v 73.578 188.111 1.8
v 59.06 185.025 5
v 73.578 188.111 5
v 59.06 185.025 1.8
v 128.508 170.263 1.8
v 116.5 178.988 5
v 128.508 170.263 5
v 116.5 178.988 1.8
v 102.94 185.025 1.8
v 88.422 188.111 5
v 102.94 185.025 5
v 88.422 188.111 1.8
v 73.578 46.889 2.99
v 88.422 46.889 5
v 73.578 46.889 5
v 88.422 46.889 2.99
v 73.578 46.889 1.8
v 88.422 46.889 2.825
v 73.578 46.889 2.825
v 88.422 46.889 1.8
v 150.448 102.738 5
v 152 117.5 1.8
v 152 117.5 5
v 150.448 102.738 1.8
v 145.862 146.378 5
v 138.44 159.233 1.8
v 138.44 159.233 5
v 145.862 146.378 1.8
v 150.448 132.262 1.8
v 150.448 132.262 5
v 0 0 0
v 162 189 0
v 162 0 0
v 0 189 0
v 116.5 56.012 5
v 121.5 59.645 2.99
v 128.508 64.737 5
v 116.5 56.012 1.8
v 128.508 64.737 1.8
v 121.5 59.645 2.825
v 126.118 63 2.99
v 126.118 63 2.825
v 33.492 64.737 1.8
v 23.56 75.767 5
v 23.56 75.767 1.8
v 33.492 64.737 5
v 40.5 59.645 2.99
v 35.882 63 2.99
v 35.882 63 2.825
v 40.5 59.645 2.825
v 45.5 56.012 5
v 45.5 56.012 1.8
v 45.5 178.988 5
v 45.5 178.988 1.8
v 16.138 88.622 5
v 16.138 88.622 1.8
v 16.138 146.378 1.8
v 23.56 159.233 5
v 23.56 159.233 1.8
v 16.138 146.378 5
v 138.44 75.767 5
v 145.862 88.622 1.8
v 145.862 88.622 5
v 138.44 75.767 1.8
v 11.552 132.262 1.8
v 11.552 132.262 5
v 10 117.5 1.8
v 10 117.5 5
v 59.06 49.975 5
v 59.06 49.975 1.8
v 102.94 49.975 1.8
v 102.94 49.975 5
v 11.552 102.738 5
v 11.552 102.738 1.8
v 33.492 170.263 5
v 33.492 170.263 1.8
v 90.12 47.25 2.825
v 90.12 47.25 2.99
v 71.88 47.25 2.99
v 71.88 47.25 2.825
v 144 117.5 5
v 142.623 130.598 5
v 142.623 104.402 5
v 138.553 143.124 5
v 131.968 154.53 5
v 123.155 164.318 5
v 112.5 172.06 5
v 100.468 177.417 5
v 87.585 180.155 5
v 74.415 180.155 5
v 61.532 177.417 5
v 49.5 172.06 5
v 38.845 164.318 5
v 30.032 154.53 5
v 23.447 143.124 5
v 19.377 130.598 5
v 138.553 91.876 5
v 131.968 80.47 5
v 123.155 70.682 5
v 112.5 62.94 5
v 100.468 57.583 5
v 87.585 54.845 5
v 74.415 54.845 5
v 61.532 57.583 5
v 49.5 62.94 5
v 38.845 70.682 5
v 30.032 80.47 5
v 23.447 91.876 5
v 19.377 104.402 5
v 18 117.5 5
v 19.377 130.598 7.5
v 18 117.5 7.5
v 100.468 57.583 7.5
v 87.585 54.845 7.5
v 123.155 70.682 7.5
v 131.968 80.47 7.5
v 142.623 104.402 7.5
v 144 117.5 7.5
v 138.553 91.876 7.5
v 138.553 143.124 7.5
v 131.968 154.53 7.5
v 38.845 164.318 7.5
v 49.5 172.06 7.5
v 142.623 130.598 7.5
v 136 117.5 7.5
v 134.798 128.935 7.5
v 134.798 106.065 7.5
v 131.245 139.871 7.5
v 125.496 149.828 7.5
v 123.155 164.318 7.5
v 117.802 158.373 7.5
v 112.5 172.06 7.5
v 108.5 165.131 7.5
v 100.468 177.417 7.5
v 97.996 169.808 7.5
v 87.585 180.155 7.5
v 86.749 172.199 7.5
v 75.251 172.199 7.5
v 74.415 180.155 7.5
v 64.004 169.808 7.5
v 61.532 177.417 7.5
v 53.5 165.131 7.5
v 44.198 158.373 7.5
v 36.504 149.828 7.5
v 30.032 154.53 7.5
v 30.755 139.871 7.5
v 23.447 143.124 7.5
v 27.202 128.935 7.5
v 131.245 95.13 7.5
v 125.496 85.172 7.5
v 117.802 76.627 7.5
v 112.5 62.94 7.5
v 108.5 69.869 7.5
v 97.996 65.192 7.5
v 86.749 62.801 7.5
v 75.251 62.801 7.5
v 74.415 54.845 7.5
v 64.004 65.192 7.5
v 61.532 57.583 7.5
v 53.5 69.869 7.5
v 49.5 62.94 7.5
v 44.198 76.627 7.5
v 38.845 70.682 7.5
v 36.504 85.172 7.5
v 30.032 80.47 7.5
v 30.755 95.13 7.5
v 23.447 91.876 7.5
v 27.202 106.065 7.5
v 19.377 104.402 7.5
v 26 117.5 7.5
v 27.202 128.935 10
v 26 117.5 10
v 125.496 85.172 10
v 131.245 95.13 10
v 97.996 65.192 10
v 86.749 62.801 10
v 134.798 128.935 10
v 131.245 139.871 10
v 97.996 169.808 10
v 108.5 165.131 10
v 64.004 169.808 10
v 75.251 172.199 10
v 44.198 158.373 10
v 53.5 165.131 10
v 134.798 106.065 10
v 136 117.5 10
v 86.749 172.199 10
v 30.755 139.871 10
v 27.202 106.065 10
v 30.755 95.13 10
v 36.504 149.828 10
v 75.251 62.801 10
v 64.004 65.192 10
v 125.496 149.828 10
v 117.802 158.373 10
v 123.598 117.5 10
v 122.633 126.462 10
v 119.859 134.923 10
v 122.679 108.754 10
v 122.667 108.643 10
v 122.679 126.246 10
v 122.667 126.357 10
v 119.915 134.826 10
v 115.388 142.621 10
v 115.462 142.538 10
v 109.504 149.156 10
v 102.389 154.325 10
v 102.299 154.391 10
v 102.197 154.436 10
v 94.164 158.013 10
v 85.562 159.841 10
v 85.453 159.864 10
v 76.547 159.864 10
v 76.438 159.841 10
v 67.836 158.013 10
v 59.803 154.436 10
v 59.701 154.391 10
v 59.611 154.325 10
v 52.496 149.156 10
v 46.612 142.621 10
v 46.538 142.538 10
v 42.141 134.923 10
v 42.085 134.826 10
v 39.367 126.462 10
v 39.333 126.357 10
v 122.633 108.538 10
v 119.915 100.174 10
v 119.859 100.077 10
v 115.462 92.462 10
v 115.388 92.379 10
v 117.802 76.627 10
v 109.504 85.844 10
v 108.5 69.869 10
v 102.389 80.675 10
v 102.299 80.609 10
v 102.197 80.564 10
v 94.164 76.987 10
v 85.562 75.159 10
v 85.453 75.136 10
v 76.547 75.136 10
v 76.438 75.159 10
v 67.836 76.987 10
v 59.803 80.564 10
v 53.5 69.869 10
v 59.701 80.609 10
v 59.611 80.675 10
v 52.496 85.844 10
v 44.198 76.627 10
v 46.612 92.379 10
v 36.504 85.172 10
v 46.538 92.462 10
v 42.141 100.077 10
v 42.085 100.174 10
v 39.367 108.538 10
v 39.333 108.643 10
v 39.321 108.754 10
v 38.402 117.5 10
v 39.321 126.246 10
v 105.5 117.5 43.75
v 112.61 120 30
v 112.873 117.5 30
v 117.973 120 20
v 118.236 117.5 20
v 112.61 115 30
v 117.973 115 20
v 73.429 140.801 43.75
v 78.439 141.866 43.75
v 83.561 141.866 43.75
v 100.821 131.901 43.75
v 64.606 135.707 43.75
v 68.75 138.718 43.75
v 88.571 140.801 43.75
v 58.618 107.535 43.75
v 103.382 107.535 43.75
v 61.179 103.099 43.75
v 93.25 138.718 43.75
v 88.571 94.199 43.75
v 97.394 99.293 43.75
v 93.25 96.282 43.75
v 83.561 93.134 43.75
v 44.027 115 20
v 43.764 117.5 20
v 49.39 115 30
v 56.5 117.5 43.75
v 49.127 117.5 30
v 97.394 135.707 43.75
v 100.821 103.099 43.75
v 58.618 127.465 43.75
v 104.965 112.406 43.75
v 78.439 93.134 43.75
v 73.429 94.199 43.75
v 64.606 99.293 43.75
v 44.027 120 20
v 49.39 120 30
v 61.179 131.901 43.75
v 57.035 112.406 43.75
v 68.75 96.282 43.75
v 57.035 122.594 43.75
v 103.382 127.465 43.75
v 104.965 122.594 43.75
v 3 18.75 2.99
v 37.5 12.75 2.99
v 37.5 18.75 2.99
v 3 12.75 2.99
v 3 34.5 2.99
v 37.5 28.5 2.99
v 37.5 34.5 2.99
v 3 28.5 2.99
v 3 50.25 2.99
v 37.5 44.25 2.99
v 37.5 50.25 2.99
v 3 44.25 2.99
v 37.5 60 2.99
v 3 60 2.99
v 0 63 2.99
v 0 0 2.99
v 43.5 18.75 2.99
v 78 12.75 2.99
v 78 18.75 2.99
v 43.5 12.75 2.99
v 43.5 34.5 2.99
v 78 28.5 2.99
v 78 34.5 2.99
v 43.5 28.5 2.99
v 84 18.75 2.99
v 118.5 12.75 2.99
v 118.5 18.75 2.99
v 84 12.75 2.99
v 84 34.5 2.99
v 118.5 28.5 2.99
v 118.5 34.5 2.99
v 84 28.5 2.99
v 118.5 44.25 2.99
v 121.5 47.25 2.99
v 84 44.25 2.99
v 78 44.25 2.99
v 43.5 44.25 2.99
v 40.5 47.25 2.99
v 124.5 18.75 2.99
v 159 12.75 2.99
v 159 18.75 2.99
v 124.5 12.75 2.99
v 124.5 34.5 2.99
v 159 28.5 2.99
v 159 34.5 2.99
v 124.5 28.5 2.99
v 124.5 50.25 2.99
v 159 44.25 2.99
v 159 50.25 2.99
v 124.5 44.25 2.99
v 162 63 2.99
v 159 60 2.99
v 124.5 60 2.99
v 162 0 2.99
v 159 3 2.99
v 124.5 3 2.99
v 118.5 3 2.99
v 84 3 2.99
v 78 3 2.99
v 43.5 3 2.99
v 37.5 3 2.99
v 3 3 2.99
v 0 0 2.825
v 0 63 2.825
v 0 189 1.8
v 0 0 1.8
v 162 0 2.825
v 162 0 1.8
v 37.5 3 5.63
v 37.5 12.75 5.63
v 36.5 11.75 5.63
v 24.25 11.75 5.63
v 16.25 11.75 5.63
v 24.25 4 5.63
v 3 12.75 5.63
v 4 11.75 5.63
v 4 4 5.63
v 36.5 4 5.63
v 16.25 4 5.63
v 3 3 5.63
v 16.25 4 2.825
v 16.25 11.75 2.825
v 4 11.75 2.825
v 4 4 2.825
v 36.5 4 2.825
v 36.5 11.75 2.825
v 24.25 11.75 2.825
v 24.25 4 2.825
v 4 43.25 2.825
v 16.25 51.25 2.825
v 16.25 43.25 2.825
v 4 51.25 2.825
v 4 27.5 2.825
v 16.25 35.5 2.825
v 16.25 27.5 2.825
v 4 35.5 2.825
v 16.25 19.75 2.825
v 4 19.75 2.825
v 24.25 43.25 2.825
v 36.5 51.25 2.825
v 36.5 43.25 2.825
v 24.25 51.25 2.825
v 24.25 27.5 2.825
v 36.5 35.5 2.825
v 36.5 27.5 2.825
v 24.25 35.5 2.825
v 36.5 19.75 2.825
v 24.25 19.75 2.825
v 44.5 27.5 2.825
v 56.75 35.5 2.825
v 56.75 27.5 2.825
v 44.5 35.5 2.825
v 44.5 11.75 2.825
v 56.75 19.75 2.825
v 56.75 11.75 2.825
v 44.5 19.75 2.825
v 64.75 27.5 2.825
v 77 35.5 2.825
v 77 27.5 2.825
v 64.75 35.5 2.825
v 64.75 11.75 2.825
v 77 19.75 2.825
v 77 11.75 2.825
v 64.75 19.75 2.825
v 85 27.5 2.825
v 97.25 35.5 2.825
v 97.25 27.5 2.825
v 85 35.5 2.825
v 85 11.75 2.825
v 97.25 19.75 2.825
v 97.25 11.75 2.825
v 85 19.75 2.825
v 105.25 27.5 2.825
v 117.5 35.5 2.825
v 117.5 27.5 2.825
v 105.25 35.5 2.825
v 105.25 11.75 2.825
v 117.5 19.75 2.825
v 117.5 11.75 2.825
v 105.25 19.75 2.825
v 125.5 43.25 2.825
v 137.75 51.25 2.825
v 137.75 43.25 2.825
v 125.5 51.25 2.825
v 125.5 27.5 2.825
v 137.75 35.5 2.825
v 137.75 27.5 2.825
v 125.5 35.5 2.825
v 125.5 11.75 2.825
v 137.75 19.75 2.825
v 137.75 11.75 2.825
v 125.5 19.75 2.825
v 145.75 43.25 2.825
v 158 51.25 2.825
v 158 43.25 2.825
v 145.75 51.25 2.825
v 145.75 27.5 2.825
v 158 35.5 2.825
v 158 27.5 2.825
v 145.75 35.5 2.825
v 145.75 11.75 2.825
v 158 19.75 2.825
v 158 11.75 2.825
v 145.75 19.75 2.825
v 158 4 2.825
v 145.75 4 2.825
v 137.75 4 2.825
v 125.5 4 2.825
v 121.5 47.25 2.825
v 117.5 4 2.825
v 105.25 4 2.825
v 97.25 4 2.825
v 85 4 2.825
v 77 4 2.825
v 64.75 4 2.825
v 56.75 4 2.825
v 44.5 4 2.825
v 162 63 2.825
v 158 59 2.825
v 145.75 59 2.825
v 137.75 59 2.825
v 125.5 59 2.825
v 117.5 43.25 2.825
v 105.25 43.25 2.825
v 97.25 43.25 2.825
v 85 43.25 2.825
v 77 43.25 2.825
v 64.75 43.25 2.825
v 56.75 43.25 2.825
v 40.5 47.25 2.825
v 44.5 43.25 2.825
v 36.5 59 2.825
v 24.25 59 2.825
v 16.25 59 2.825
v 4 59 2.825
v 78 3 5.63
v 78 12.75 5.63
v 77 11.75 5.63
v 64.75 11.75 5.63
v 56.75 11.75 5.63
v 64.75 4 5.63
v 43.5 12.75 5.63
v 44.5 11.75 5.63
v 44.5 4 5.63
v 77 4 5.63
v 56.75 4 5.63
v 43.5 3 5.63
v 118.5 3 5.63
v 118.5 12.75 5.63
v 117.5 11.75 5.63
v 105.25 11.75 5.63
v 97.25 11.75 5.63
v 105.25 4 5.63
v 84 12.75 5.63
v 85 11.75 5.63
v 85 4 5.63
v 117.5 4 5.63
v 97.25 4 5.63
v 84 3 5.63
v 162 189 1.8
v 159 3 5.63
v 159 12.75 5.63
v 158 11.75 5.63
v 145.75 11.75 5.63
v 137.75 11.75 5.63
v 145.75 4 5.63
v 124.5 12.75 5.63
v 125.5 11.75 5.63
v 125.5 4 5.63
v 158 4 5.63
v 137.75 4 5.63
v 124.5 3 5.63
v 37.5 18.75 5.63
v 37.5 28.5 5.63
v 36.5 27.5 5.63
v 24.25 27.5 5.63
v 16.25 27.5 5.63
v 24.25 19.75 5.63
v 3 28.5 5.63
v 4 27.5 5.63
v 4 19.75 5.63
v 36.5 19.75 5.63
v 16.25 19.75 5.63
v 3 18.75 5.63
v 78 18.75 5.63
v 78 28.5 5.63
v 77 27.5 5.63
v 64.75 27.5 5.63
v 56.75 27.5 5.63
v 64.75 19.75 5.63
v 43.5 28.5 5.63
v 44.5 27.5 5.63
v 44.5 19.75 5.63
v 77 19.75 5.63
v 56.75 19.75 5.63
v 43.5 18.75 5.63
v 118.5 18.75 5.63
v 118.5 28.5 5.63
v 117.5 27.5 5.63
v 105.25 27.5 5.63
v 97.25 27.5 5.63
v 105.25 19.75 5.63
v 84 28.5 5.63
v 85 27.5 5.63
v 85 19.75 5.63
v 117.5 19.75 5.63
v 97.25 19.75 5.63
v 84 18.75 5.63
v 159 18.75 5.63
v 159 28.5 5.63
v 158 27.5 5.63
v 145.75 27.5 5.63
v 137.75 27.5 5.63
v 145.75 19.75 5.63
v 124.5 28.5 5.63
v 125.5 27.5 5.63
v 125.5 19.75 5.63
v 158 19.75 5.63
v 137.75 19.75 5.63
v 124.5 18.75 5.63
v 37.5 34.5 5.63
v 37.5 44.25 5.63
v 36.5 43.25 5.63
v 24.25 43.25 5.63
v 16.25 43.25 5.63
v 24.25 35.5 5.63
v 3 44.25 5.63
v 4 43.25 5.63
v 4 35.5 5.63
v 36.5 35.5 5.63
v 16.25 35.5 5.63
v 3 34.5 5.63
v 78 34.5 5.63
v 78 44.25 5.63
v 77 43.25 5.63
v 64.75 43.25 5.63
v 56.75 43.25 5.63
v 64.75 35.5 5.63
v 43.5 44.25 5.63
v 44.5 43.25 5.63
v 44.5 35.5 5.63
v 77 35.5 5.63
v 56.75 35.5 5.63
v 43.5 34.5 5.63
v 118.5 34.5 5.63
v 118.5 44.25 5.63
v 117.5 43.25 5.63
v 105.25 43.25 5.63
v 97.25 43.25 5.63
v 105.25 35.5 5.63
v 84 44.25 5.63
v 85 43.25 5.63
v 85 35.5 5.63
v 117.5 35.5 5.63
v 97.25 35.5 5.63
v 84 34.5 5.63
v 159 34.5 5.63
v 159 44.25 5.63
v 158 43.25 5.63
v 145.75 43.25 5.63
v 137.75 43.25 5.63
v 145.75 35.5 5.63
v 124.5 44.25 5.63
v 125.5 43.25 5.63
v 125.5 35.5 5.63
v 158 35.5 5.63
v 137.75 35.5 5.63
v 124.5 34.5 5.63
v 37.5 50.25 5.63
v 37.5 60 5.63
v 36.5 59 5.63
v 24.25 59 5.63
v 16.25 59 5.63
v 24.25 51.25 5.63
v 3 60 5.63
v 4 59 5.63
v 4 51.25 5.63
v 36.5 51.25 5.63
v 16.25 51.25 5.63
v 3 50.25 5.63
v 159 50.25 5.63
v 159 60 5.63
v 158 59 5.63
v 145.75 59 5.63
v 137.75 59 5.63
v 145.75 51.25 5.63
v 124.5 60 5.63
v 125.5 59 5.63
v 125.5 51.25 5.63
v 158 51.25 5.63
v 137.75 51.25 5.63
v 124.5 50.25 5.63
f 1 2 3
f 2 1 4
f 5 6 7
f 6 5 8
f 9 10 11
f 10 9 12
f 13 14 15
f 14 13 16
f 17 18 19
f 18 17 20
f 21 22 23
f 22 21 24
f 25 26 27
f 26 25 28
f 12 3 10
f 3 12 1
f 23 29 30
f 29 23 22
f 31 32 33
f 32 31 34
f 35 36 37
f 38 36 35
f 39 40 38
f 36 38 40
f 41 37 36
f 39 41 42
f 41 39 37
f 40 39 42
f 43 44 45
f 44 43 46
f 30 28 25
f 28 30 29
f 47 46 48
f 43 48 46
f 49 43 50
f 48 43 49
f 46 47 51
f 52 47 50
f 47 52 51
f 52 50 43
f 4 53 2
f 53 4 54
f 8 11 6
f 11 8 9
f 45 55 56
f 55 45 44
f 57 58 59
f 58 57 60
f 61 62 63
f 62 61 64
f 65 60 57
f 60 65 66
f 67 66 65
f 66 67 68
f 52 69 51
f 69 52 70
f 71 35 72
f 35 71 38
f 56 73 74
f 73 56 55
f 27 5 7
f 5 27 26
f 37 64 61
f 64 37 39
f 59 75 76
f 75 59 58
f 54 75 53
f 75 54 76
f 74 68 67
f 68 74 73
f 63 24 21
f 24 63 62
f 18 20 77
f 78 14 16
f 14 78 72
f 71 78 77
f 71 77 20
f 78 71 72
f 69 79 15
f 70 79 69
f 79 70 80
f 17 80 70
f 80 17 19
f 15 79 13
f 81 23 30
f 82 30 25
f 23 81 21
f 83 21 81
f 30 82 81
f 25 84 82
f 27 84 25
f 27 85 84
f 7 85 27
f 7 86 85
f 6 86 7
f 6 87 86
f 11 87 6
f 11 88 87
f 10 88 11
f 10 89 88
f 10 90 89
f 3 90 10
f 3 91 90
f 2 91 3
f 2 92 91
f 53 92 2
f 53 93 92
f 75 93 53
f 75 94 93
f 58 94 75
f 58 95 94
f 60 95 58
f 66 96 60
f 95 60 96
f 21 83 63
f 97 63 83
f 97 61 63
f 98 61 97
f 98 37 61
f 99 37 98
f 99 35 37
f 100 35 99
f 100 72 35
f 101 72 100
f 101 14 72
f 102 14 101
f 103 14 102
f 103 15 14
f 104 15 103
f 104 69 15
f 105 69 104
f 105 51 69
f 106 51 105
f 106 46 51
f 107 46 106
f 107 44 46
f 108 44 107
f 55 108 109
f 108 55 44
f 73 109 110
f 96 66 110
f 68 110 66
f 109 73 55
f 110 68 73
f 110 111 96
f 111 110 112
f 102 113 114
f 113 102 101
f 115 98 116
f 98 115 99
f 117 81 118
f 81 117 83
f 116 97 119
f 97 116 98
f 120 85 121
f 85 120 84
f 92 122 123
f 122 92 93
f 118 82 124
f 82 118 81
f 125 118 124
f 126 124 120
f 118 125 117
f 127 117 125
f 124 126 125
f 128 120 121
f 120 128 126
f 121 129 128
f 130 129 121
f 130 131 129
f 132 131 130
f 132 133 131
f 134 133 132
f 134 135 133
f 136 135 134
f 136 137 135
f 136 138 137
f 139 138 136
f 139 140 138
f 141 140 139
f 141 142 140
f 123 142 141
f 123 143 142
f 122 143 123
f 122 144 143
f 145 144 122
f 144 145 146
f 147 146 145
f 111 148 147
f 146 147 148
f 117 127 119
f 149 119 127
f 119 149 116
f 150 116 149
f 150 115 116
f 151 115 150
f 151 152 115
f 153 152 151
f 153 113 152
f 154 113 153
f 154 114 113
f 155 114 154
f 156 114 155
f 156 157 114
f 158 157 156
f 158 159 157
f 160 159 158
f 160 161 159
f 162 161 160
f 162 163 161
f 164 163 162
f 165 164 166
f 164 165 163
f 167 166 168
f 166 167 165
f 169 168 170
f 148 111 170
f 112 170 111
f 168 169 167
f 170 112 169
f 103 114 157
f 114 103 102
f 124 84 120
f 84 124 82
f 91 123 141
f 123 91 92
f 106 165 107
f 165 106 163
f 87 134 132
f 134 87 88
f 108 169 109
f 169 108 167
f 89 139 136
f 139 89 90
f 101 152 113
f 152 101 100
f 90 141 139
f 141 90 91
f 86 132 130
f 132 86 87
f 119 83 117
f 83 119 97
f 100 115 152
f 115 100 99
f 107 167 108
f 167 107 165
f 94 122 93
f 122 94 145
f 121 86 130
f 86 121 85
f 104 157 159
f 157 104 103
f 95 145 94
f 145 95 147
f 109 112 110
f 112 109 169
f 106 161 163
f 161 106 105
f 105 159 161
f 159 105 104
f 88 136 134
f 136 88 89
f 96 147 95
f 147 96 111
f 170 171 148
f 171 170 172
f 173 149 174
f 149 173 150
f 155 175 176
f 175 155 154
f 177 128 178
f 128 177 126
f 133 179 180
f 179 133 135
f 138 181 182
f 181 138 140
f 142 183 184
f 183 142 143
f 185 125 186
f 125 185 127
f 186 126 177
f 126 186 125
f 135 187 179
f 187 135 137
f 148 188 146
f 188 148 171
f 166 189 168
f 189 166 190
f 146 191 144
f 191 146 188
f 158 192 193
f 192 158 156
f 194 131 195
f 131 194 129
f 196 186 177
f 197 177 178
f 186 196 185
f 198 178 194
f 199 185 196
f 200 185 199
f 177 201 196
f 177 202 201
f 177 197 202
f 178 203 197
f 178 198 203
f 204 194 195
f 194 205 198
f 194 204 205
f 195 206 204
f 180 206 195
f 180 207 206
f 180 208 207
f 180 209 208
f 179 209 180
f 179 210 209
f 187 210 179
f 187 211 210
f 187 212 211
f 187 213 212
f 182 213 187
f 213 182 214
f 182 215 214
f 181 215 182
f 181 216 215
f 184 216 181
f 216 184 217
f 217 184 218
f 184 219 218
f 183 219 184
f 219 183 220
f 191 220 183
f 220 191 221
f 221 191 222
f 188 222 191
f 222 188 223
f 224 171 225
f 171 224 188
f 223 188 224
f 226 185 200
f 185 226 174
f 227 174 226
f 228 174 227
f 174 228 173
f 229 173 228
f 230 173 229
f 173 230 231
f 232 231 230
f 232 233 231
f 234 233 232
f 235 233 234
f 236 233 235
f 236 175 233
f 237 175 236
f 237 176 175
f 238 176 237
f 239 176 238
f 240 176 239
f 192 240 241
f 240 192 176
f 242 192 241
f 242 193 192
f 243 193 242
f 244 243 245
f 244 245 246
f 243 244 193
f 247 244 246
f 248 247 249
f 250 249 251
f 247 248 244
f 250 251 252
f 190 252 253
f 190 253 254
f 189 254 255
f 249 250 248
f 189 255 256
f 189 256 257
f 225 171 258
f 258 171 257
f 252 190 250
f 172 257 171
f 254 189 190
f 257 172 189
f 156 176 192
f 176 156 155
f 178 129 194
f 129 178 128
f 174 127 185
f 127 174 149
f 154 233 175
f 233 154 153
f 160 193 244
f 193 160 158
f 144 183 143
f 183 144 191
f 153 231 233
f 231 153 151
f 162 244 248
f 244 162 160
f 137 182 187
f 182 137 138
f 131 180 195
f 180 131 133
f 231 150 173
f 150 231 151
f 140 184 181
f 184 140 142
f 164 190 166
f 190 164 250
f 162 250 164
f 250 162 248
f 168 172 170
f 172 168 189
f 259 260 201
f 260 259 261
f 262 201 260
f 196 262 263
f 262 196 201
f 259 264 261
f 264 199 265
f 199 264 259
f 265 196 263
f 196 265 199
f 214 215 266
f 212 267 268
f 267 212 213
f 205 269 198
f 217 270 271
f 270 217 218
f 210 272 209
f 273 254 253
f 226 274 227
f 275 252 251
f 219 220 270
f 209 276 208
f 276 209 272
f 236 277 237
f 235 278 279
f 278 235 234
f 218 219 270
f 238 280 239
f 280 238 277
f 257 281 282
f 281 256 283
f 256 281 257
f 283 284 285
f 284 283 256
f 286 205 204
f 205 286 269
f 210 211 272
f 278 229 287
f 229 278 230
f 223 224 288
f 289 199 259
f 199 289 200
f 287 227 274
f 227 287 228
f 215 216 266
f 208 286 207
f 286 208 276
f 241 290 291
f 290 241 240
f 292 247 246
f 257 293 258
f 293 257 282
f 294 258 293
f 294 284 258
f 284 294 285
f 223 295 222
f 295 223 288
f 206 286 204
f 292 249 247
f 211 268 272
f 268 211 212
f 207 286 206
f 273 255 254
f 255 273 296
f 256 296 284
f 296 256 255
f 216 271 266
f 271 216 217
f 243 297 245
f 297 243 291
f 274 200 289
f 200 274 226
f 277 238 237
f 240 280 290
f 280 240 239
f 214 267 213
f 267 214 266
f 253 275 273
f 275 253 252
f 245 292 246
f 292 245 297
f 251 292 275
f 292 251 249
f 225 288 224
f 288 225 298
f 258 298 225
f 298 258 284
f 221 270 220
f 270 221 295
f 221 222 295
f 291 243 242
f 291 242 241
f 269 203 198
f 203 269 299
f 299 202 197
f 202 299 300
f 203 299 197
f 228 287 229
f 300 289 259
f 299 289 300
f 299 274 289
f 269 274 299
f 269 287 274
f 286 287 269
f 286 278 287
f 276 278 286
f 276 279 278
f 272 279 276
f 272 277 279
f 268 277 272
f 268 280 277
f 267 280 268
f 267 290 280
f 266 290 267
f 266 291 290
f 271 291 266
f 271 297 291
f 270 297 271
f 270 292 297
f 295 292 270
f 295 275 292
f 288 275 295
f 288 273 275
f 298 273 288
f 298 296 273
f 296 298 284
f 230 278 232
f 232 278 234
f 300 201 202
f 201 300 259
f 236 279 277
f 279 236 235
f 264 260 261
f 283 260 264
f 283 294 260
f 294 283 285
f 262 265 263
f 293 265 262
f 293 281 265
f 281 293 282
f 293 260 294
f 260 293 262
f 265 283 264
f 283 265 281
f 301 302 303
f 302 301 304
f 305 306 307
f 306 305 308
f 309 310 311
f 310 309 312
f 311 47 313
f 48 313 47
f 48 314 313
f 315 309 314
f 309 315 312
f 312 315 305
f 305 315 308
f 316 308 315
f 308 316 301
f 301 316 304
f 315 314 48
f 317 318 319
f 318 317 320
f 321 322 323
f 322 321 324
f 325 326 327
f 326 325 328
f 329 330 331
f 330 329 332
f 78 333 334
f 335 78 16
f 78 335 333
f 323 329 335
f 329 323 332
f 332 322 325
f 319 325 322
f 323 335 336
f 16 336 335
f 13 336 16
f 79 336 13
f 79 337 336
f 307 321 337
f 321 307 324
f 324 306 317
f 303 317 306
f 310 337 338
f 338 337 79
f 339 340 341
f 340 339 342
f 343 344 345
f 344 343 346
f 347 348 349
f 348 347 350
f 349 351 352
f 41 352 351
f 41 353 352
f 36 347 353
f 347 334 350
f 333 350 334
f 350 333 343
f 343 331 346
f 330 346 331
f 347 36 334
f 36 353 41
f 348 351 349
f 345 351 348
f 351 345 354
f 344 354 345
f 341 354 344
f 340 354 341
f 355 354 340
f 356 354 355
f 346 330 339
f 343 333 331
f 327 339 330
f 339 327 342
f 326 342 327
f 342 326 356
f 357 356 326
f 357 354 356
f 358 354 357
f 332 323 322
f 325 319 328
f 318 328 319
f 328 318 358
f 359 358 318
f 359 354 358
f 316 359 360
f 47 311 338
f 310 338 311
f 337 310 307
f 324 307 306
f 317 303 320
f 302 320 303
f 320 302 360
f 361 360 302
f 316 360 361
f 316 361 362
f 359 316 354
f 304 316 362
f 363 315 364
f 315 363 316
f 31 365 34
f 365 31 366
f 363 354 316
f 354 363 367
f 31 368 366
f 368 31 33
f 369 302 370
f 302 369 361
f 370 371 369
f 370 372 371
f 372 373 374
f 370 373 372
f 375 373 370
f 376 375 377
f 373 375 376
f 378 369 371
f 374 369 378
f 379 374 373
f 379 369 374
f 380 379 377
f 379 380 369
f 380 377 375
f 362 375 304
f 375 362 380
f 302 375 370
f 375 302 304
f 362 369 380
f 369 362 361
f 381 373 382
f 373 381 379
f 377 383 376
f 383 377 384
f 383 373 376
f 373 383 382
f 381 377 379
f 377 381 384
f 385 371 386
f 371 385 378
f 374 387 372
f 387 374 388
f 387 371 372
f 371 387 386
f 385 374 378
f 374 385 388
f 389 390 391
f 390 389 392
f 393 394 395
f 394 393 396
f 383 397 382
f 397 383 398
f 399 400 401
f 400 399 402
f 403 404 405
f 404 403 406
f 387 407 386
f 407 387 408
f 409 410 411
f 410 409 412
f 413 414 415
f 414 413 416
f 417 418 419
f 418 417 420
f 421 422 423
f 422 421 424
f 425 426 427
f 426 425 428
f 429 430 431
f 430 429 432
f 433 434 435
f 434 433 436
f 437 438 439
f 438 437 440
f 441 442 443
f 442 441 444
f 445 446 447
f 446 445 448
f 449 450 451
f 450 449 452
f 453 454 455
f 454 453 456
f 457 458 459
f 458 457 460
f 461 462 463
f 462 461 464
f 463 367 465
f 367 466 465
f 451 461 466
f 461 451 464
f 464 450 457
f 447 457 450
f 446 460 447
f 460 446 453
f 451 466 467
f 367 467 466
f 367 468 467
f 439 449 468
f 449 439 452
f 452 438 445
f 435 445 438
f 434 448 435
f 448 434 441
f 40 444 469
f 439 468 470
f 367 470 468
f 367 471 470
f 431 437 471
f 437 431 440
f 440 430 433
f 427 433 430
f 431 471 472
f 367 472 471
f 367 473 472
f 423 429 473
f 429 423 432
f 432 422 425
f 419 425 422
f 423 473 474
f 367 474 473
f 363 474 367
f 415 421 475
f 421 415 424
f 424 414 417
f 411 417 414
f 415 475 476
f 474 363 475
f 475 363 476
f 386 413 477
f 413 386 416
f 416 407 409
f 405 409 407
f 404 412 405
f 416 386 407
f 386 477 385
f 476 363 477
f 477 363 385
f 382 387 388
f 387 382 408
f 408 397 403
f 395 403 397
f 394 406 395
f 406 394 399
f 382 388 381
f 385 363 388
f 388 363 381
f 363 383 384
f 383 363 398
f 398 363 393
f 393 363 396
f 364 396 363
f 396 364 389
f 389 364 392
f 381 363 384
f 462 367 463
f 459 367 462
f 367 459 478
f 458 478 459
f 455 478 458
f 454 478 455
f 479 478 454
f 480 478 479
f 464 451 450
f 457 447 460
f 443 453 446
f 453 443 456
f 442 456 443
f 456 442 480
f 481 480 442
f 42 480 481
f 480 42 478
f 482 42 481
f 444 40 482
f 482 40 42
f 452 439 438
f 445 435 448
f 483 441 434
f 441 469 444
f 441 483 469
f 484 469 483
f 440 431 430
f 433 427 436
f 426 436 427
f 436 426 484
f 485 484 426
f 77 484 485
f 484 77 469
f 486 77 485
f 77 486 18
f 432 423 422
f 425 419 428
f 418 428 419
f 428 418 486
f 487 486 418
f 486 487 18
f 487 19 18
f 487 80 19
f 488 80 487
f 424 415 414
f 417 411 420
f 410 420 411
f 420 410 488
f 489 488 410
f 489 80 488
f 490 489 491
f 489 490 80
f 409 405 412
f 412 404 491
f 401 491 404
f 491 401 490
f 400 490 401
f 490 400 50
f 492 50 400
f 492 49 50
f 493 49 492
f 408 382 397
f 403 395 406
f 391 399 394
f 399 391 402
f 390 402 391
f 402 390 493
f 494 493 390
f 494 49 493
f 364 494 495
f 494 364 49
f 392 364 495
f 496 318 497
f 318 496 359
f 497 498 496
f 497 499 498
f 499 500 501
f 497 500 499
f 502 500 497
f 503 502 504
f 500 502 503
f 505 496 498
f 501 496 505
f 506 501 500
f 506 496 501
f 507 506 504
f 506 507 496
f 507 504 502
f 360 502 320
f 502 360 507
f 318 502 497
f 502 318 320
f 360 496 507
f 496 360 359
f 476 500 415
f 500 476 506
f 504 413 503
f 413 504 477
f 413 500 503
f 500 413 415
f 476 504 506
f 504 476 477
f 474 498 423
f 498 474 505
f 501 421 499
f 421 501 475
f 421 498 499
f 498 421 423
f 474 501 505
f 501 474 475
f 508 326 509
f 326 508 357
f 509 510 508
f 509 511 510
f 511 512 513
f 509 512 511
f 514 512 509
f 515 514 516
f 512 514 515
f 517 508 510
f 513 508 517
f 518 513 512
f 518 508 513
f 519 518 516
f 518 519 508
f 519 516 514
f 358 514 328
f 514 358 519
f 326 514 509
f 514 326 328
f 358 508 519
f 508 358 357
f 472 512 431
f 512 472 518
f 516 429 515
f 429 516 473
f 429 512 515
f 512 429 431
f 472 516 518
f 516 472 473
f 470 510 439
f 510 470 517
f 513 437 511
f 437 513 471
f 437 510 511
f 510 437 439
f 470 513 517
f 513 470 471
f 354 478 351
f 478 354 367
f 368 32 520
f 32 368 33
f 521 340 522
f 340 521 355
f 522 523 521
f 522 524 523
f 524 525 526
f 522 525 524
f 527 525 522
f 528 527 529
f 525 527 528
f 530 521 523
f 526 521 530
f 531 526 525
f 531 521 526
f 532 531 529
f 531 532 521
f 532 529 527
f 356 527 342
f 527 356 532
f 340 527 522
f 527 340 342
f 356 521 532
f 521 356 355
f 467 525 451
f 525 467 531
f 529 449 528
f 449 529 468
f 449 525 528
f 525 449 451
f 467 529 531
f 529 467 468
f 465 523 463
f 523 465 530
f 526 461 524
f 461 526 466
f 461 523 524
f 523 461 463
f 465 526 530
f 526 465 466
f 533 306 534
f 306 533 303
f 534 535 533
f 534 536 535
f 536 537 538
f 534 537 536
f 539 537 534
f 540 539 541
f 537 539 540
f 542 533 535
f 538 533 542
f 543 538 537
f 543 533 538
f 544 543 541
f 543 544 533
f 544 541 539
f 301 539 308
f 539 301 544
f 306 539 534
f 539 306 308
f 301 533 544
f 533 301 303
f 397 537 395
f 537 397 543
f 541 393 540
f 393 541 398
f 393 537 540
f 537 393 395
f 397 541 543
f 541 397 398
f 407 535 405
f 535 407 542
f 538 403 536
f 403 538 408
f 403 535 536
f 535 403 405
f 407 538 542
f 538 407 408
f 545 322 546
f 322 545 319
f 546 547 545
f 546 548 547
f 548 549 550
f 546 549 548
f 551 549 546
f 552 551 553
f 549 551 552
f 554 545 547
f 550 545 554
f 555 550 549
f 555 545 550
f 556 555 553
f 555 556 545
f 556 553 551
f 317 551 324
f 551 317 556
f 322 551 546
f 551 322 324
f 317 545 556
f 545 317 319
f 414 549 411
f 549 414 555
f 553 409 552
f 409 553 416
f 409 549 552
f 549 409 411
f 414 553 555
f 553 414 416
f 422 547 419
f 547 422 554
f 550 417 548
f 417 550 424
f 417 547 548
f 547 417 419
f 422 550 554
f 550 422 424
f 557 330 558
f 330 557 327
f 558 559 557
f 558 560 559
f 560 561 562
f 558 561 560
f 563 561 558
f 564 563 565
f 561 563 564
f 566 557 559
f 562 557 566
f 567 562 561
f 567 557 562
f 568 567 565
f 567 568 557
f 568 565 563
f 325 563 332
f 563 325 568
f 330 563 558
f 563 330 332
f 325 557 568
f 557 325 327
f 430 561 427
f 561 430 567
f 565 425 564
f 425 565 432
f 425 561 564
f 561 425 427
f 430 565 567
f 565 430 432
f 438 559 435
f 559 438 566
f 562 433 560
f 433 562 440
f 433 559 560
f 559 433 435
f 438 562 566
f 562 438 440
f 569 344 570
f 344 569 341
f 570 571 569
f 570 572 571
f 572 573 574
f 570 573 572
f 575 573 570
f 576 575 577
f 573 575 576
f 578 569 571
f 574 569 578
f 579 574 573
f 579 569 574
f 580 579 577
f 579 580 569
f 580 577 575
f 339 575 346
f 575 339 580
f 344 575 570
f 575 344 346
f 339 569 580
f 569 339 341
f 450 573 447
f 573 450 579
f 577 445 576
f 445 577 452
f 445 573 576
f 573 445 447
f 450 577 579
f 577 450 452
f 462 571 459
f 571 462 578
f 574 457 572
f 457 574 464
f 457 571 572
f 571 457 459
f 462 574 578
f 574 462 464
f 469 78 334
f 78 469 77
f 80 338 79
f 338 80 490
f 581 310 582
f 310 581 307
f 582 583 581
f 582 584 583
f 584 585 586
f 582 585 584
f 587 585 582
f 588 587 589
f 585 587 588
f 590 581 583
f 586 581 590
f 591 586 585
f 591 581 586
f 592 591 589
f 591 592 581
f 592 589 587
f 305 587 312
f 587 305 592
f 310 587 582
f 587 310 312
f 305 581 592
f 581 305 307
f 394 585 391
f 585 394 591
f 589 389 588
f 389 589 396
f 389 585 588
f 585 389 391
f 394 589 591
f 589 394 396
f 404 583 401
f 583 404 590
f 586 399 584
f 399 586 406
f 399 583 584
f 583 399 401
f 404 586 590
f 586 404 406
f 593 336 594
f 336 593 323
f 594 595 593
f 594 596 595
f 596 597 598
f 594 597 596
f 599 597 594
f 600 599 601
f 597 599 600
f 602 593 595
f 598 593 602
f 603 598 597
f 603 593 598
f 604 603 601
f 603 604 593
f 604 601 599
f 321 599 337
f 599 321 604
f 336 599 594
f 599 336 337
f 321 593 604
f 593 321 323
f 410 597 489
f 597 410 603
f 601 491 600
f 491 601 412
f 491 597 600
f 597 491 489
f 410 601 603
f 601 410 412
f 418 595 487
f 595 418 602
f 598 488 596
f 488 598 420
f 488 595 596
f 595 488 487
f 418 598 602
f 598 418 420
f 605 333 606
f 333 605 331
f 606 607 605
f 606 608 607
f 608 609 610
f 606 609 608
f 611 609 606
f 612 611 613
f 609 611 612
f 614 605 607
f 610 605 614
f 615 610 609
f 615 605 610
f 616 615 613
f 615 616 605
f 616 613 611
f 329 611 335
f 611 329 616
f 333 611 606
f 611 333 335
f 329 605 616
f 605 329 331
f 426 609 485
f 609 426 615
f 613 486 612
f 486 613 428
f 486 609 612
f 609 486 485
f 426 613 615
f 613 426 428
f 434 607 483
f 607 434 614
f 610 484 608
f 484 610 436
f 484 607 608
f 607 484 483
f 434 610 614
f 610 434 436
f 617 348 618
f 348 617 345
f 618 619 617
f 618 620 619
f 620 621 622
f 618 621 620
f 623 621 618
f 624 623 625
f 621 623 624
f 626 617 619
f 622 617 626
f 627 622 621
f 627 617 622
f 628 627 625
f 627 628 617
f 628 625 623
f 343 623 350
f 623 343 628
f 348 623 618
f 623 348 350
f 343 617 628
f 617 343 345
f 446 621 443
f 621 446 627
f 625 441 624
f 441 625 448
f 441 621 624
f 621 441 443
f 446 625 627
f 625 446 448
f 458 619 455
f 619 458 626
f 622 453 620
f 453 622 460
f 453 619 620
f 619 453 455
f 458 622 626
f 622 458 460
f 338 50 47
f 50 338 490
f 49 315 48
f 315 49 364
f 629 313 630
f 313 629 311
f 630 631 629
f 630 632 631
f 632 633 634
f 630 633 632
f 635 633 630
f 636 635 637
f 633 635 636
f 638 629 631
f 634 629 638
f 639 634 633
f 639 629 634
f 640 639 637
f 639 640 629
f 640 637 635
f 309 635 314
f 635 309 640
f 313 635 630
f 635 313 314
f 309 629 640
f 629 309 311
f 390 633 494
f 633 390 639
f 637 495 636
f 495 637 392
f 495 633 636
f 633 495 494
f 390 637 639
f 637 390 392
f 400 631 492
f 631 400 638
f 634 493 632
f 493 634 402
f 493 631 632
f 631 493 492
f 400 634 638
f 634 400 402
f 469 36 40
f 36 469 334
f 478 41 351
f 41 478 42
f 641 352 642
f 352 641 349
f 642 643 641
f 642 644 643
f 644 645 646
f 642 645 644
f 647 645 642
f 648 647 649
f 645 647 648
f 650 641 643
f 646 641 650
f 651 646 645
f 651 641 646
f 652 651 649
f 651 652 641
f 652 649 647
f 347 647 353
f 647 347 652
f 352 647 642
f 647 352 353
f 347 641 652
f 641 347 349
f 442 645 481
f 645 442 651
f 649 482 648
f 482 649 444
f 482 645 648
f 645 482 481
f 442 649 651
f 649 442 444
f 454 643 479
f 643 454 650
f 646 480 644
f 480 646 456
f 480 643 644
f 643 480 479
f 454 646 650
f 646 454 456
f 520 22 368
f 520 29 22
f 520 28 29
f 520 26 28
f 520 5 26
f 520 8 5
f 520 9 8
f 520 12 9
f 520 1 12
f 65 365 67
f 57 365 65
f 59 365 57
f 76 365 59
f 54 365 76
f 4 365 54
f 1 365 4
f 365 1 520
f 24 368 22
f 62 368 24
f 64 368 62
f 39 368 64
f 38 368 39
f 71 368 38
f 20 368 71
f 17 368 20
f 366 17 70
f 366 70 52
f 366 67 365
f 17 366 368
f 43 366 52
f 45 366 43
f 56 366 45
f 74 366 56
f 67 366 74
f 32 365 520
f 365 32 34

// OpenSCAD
$footW = 24.5;
$footH = 15.5;
$spacer = 16;
$depth = 5;
$rim = 2;
$blockW = $footW * 2 + $spacer*2;
$blockL = $footH + $spacer;

module footplate() {
    scale([.5, .5, .33]) {
    difference() {
        union() {
        cube([$blockW, $blockL, $depth+1], true);
        translate([0, 0, $depth/2]) { 
          translate([0, 0, 1]) {
              cube([$footW*2+$spacer + $rim*2, 
            $footH+$rim*2, $depth*3], true);
        }
    }
        }
        translate([-($footW + $spacer/2), 
                   -$footH/2, 0]) {
            cube([$footW, $footH, 30], false);
        }
        translate([$spacer / 2, -$footH/2, 0]) {
            cube([$footW, $footH, 30], false);
        }
        cube([$blockW, $blockL, $depth], true);
    }
}
}


    
cube([162, 189, 1.8], false);
translate([81, 117.5, 0]) {
    cylinder(5, 71, 71, false);
    cylinder(7.5, 63, 63, false);
    cylinder(10, 55, 55, false);
}

translate([81, 117.5, 10]) {
difference() {
    scale([.5, .5, .75]) {
        translate([0, 0, -1]) { 
        cylinder(46, 86, 49);
    }
}

translate([0, 0, 15]) {
    cube([200, 5, 10], true);
}
}
}

translate([0, 0, 2]) {
translate([$blockW/4, $blockL/4, 0]) { footplate(); }
translate([$blockW/2 + $blockW/4, $blockL/4, 0]) { 
    footplate(); }
translate([$blockW/4, $blockL/4, 0]) { footplate(); }
translate([$blockW + $blockW/4, $blockL/4, 0]) { 
    footplate(); }
    translate([$blockW/4, $blockL/4, 0]) { footplate(); }
translate([1.5 * $blockW + $blockW/4, $blockL/4, 0]) { 
    footplate(); }
    
translate([0,  $blockL/2, 0]) {
    translate([$blockW/4, $blockL/4, 0]) { footplate(); }
translate([$blockW/2 + $blockW/4, $blockL/4, 0]) { 
    footplate(); }
translate([$blockW/4, $blockL/4, 0]) { footplate(); }
translate([$blockW + $blockW/4, $blockL/4, 0]) { 
    footplate(); }
    translate([$blockW/4, $blockL/4, 0]) { footplate(); }
translate([1.5 * $blockW + $blockW/4, $blockL/4, 0]) { 
    footplate(); }
}


translate([0,  $blockL, 0]) {
    translate([$blockW/4, $blockL/4, 0]) { footplate(); }
translate([$blockW/2 + $blockW/4, $blockL/4, 0]) { 
    footplate(); }
translate([$blockW/4, $blockL/4, 0]) { footplate(); }
translate([$blockW + $blockW/4, $blockL/4, 0]) { 
    footplate(); }
    translate([$blockW/4, $blockL/4, 0]) { footplate(); }
translate([1.5 * $blockW + $blockW/4, $blockL/4, 0]) { 
    footplate(); }
}


translate([0,  1.5 * $blockL, 0]) {
    translate([$blockW/4, $blockL/4, 0]) { footplate(); }

    translate([$blockW/4, $blockL/4, 0]) { footplate(); }
translate([1.5 * $blockW + $blockW/4, $blockL/4, 0]) { 
    footplate(); }
}
}
